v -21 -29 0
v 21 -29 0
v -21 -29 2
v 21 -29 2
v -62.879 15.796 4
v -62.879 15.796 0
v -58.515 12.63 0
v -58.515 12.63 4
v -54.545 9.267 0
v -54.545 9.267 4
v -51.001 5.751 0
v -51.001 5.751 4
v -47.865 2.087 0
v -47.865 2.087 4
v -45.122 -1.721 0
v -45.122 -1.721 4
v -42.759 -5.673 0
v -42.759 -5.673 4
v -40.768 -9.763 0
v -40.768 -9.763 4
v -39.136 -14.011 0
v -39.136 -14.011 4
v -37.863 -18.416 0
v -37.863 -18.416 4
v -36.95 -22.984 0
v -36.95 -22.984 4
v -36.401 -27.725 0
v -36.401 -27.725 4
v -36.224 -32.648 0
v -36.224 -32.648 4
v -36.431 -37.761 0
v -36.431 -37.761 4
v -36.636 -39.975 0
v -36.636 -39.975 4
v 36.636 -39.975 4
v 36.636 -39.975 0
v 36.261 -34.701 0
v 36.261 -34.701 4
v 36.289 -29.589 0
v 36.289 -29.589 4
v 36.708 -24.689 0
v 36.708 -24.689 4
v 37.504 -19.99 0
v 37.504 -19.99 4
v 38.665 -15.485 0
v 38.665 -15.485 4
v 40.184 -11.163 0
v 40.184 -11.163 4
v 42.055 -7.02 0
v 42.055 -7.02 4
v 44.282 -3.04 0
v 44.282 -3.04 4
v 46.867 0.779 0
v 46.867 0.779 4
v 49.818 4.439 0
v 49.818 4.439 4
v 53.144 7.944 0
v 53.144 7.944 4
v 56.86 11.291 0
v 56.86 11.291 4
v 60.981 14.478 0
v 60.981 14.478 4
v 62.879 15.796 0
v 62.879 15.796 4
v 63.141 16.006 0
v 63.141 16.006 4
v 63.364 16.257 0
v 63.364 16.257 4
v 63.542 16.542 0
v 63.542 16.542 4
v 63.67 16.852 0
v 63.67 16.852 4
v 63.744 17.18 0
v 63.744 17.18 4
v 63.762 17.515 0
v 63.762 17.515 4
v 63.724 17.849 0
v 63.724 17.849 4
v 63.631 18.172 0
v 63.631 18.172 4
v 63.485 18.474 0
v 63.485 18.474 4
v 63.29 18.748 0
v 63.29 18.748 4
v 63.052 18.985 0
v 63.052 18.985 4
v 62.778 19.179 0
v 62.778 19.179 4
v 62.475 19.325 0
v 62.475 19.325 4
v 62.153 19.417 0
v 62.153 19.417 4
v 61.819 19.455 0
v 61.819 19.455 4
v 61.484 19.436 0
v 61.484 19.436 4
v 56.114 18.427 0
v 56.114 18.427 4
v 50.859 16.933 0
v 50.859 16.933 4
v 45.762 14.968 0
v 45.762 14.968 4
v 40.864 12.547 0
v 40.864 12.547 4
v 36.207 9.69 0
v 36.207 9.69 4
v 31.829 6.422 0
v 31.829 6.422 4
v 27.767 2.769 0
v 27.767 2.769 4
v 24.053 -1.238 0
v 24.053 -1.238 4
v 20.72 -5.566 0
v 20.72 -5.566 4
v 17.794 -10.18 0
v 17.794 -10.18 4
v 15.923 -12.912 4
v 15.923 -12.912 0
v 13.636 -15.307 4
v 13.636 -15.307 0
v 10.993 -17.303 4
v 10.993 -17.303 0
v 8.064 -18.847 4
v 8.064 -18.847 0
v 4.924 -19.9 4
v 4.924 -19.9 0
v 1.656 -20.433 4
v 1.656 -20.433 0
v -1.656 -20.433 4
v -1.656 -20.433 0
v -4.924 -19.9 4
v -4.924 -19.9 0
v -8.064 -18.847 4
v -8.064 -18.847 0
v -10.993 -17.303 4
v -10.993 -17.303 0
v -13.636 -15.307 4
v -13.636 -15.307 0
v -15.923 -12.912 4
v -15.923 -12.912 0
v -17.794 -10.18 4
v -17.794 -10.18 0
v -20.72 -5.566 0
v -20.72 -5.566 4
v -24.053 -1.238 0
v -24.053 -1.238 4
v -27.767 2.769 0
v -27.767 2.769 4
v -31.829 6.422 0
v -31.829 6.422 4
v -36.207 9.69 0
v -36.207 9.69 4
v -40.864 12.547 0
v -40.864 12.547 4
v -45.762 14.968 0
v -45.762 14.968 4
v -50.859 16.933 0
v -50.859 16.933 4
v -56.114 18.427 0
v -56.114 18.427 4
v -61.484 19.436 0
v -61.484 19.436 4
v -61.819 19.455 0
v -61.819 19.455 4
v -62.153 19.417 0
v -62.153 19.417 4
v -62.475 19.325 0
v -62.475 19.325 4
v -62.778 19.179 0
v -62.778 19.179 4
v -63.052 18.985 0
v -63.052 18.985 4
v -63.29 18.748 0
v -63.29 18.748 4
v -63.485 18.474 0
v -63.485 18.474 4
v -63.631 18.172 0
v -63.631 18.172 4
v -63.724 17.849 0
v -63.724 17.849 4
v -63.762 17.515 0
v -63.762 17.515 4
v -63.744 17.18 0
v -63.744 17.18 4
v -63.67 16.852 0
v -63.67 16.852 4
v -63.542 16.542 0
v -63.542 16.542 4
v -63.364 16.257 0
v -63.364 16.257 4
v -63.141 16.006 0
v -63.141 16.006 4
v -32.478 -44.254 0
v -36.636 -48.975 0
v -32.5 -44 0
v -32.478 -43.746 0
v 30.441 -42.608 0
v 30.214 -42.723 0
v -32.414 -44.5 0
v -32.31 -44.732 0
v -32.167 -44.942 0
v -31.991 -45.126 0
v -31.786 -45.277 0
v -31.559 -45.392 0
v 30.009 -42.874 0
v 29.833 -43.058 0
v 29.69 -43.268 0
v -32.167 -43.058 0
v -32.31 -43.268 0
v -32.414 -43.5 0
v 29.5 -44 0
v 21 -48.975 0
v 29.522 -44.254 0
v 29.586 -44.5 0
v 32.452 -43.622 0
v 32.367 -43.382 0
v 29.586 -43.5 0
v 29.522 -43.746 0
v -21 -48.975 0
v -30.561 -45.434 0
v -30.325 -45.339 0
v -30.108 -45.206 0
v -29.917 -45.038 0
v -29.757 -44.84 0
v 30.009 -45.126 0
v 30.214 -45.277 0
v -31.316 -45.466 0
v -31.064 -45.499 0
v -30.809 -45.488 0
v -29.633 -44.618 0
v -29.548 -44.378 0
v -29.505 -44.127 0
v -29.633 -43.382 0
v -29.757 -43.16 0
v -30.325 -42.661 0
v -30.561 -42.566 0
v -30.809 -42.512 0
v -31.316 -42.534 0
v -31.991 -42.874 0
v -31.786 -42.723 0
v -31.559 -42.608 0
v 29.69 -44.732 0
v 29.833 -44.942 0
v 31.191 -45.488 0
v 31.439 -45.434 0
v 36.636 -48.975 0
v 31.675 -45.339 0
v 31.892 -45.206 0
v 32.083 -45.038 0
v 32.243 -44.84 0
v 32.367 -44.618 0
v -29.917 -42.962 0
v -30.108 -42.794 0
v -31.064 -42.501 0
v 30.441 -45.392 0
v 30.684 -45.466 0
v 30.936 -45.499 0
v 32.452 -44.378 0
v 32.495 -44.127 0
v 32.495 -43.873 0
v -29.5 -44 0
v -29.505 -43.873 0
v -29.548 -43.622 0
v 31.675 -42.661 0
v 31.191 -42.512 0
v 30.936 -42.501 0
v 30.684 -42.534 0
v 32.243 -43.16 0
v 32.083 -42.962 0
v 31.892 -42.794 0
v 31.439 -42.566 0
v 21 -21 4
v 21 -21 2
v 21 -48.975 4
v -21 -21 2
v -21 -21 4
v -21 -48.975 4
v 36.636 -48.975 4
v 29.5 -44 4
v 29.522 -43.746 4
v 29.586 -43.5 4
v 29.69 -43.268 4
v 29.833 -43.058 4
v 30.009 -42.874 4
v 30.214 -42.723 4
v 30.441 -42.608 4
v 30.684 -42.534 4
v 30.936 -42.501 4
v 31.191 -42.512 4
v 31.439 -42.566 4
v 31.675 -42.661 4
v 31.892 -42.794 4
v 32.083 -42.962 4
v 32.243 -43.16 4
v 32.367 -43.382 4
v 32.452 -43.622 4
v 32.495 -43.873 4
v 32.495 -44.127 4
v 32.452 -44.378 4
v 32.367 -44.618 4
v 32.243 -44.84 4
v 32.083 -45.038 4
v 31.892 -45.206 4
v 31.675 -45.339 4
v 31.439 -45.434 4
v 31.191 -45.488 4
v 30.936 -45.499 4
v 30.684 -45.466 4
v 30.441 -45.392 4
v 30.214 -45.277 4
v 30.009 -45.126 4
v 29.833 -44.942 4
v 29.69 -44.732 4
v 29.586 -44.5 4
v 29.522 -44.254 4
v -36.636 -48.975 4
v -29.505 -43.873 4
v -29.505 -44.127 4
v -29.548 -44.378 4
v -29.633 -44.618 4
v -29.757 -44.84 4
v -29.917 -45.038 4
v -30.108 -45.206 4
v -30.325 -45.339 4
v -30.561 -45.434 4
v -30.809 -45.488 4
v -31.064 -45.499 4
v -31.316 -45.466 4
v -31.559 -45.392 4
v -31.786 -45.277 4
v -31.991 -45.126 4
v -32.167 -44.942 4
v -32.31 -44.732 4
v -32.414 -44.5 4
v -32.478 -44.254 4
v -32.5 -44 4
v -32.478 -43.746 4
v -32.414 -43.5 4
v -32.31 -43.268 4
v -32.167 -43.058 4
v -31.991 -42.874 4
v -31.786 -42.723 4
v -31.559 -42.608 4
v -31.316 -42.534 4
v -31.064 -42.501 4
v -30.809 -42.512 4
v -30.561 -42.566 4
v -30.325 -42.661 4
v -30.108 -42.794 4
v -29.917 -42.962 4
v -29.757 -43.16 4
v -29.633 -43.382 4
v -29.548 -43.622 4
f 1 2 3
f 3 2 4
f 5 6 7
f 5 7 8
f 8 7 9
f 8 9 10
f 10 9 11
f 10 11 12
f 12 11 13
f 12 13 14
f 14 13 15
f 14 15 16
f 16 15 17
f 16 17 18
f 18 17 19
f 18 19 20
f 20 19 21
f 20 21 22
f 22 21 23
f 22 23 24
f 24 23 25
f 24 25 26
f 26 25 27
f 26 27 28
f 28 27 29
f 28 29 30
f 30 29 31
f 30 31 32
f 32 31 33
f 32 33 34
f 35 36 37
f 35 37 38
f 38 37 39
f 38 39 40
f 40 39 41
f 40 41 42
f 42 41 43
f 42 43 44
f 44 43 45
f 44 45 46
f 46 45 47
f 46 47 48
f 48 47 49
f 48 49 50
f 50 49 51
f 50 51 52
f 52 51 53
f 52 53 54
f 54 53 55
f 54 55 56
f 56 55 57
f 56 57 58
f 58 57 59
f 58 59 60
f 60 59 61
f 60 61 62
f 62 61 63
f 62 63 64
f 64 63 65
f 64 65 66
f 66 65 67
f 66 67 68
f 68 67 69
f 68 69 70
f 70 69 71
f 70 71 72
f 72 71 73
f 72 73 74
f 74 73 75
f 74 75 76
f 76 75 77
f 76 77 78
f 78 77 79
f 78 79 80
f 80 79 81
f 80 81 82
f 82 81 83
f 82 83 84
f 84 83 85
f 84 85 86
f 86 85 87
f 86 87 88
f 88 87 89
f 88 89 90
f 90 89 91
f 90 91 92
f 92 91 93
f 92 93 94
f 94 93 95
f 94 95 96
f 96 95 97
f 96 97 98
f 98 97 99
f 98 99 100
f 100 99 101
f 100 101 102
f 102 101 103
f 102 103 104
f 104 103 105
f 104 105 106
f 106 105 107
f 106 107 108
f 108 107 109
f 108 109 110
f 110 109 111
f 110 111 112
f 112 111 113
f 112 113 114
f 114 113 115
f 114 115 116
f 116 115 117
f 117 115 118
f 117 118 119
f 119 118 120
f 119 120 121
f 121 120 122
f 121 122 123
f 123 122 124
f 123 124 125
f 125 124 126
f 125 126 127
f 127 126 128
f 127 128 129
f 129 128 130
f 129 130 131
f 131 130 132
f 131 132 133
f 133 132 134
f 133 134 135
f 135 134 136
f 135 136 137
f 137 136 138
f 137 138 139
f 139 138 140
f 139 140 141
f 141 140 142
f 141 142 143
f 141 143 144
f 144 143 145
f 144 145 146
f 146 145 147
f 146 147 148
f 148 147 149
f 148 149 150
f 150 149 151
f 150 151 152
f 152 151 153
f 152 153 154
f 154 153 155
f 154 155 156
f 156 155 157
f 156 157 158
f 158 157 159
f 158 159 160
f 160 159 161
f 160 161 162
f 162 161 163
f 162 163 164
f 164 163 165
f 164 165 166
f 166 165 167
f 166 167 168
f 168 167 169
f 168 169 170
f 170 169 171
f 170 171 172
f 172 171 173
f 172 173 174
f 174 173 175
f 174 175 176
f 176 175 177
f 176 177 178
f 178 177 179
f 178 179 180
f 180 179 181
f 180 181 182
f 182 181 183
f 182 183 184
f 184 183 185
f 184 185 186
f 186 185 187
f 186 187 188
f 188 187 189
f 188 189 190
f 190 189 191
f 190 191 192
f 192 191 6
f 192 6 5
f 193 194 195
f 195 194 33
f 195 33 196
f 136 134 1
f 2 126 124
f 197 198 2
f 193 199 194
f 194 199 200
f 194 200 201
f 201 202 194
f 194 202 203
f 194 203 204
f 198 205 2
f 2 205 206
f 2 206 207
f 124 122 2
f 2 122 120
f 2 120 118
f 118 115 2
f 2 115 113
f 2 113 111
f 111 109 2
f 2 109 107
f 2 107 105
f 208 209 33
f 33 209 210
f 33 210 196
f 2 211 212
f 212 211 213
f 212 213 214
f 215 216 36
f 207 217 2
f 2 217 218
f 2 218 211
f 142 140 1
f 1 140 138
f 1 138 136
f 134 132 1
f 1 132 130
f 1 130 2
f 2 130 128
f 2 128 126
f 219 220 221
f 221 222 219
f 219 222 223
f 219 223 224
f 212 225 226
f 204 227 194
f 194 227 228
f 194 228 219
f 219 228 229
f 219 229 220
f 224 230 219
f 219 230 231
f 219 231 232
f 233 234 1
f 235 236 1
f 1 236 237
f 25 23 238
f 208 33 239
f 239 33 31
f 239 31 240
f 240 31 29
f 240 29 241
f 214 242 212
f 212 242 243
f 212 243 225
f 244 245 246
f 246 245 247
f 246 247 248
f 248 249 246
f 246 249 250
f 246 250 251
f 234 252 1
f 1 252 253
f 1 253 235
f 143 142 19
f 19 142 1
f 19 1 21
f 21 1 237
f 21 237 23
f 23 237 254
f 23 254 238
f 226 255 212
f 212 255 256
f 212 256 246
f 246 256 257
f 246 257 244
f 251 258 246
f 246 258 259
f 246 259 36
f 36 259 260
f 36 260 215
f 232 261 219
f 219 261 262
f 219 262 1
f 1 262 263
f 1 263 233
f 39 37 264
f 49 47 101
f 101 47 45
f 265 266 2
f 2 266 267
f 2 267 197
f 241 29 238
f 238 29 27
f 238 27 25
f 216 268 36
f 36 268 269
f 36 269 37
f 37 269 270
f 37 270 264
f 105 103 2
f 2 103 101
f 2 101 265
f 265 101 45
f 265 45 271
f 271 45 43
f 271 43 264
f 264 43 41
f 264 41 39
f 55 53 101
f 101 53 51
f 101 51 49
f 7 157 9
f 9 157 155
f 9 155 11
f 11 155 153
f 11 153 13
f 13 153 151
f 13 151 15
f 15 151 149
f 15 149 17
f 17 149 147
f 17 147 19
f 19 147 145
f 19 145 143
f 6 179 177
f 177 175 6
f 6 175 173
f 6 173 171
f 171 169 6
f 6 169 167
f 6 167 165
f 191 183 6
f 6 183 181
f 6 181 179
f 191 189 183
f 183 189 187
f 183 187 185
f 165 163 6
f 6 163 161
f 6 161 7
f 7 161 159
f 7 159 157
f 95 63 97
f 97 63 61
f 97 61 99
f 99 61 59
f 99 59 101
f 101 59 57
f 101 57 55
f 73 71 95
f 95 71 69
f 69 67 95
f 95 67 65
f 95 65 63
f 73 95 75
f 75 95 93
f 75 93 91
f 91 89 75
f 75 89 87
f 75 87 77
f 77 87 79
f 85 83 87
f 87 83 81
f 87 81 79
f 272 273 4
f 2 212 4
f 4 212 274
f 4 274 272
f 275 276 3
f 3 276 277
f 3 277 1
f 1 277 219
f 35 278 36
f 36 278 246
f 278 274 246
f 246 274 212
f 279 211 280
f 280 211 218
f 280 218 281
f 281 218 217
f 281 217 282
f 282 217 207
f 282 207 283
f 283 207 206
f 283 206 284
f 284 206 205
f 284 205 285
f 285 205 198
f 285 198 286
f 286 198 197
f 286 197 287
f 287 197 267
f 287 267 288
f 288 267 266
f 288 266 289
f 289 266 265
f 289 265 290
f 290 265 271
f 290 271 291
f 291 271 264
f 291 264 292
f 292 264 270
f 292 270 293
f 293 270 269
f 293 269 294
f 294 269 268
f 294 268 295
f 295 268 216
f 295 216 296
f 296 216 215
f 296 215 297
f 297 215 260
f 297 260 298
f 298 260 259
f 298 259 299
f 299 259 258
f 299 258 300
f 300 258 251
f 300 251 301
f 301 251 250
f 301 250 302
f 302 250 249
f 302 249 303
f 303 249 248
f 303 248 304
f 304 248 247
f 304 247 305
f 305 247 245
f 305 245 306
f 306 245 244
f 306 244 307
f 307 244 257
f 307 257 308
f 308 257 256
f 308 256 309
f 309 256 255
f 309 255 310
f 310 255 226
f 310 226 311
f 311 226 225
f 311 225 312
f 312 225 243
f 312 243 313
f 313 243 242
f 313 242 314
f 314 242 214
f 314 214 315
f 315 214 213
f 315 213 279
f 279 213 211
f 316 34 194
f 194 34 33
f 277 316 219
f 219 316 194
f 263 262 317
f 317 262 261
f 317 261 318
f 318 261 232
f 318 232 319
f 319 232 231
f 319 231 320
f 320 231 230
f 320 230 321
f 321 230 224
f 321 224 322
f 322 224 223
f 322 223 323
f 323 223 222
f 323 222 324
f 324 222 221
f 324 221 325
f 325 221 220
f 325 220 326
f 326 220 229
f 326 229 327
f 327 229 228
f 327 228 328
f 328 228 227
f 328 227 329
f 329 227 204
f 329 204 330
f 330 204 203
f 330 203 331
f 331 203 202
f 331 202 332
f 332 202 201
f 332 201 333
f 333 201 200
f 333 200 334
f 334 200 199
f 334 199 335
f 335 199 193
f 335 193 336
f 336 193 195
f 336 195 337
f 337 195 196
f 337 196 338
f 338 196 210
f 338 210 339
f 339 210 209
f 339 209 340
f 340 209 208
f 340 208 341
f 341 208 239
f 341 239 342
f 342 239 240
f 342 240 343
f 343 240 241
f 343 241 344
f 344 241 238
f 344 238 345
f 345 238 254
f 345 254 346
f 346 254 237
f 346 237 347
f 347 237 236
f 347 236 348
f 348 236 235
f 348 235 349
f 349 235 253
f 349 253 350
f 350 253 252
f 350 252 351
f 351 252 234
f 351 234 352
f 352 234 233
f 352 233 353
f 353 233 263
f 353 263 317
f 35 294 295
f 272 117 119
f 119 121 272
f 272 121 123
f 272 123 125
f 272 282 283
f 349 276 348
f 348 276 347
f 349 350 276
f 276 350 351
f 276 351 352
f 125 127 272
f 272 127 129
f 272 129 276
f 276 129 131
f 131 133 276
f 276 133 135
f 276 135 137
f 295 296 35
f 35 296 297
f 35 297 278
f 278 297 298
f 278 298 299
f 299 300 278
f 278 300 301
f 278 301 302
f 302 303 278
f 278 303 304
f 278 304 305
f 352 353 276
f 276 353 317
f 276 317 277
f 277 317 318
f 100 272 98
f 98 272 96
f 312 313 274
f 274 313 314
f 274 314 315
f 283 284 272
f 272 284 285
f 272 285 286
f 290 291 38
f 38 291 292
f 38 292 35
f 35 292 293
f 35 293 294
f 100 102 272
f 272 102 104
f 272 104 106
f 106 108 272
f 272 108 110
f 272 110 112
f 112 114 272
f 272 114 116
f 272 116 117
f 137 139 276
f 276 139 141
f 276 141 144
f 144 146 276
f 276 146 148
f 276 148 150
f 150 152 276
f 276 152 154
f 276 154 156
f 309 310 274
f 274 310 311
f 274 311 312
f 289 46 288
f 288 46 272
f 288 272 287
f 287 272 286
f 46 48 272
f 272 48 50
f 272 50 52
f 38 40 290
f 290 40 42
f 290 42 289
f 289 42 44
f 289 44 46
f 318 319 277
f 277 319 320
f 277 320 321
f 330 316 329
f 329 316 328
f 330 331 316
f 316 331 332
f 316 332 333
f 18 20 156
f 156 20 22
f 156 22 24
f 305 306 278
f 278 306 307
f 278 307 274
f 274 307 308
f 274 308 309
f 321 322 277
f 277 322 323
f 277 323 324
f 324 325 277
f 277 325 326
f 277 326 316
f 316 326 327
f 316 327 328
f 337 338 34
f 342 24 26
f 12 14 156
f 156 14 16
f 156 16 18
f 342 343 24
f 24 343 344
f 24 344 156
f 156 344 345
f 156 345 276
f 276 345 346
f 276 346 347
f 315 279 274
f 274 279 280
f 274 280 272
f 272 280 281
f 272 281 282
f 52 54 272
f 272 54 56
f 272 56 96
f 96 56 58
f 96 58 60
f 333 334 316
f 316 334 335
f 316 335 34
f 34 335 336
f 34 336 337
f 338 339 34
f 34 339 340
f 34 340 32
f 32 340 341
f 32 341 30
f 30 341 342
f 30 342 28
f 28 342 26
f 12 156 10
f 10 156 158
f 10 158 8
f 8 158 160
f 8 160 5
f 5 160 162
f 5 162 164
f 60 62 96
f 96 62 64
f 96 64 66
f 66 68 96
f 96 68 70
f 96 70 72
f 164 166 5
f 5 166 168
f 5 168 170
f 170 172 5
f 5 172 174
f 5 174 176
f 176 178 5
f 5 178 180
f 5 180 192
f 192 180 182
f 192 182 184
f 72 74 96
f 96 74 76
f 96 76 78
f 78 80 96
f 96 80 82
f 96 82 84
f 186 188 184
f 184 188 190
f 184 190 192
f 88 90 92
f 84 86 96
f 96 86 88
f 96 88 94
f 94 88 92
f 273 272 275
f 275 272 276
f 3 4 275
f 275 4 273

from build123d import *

# Parameters (mm, degrees)
EXTRUDE_1_DEPTH     = 3
SKETCH_2_W          = 42
SKETCH_2_H          = 10.974531836
CUT_EXTRUDE_1_DEPTH = 3
SKETCH_3_W          = 15.635920588
SKETCH_3_H          = 9
SKETCH_3_R          = 1.5
EXTRUDE_2_DEPTH     = 3
EXTRUDE_7_DEPTH     = 1
SKETCH_5_W          = 42
SKETCH_5_H          = 8
CUT_EXTRUDE_2_DEPTH = 1
SKETCH_6_R          = 1.5
CUT_EXTRUDE_3_DEPTH = 1


with BuildPart() as part:
    # 草图1 → 凸台-拉伸1 (new body)
    with BuildSketch(Plane.XY):
        with BuildLine():
            Line((36.635920588, -39.974531836), (-36.635920588, -39.974531836))
            add(Edge.make_bspline(
                [(-36.635920588, -39.974531836), (-34.121545097, -16.704406605), (-43.139592985, 2.527664637), (-62.878950173, 15.795774826)],
                knots=[0, 0, 0, 0, 0.89990839, 0.89990839, 0.89990839, 0.89990839], degree=3))
            ThreePointArc((-62.878950173, 15.795774826), (-63.630739893, 18.171500647), (-61.483579663, 19.436002094))
            ThreePointArc((-61.483579663, 19.436002094), (-36.207222823, 9.690254792), (-17.793837687, -10.179849722))
            ThreePointArc((-17.793837687, -10.179849722), (0, -20.5), (17.793837687, -10.179849722))
            ThreePointArc((17.793837687, -10.179849722), (36.207222823, 9.690254792), (61.483579663, 19.436002094))
            ThreePointArc((61.483579663, 19.436002094), (63.630739893, 18.171500647), (62.878950173, 15.795774826))
            add(Edge.make_bspline(
                [(36.635920588, -39.974531836), (34.121545097, -16.704406605), (43.139592985, 2.527664637), (62.878950173, 15.795774826)],
                knots=[0, 0, 0, 0, 0.89990839, 0.89990839, 0.89990839, 0.89990839], degree=3))
        make_face()
    extrude(amount=EXTRUDE_1_DEPTH)

    # 草图2 → 切除-拉伸1 (cut)
    with BuildSketch(Plane(origin=(0, 0, 0), x_dir=(-1, 0, 0), z_dir=(0, 0, -1))):
        with Locations((0, -34.487265918)):
            Rectangle(SKETCH_2_W, SKETCH_2_H)
    extrude(amount=-CUT_EXTRUDE_1_DEPTH, mode=Mode.SUBTRACT)

    # 草图3 → 凸台-拉伸2 (add)
    # profile 1 of 2: a face of its own
    with BuildSketch(Plane(origin=(0, 0, 0), x_dir=(-1, 0, 0), z_dir=(0, 0, -1))):
        with Locations((-28.817960294, -44.474531836)):
            Rectangle(SKETCH_3_W, SKETCH_3_H)
        with Locations((-31, -44)):
            Circle(SKETCH_3_R, mode=Mode.SUBTRACT)
    # profile 2 of 2: a face of its own
    with BuildSketch(Plane(origin=(0, 0, 0), x_dir=(-1, 0, 0), z_dir=(0, 0, -1))):
        with Locations((28.817960294, -44.474531836)):
            Rectangle(SKETCH_3_W, SKETCH_3_H)
        with Locations(Location((31, -44, 0), (0, 0, 180))):
            Circle(SKETCH_3_R, mode=Mode.SUBTRACT)
    extrude(amount=-EXTRUDE_2_DEPTH)

    # 草图4 → 凸台-拉伸7 (add)
    with BuildSketch(Plane.XY.offset(3)):
        with BuildLine():
            Line((-21, -29), (-21, -21))
            Line((-21, -21), (21, -21))
            Line((21, -21), (21, -29))
            Line((21, -29), (21, -48.974531836))
            Line((21, -48.974531836), (36.635920588, -48.974531836))
            Line((36.635920588, -48.974531836), (36.635920588, -39.974531836))
            add(Edge.make_bspline(
                [(36.635920588, -39.974531836), (34.121545097, -16.704406605), (43.139592985, 2.527664637), (62.878950173, 15.795774826)],
                knots=[0, 0, 0, 0, 0.89990839, 0.89990839, 0.89990839, 0.89990839], degree=3))
            ThreePointArc((62.878950173, 15.795774826), (63.630739893, 18.171500647), (61.483579663, 19.436002094))
            ThreePointArc((61.483579663, 19.436002094), (36.207222823, 9.690254792), (17.793837687, -10.179849722))
            ThreePointArc((17.793837687, -10.179849722), (0, -20.5), (-17.793837687, -10.179849722))
            ThreePointArc((-17.793837687, -10.179849722), (-36.207222823, 9.690254792), (-61.483579663, 19.436002094))
            ThreePointArc((-61.483579663, 19.436002094), (-63.630739893, 18.171500647), (-62.878950173, 15.795774826))
            add(Edge.make_bspline(
                [(-62.878950173, 15.795774826), (-43.139592985, 2.527664637), (-34.121545097, -16.704406605), (-36.635920588, -39.974531836)],
                knots=[0, 0, 0, 0, 0.89990839, 0.89990839, 0.89990839, 0.89990839], degree=3))
            Line((-36.635920588, -39.974531836), (-36.635920588, -48.974531836))
            Line((-36.635920588, -48.974531836), (-21, -48.974531836))
            Line((-21, -48.974531836), (-21, -29))
        make_face()
    extrude(amount=EXTRUDE_7_DEPTH)

    # 草图5 → 切除-拉伸2 (cut)
    with BuildSketch(Plane.XY.offset(3)):
        with Locations((0, -25)):
            Rectangle(SKETCH_5_W, SKETCH_5_H)
    extrude(amount=-CUT_EXTRUDE_2_DEPTH, mode=Mode.SUBTRACT)

    # 草图6 → 切除-拉伸3 (cut)
    with BuildSketch(Plane(origin=(0, 0, 3), x_dir=(-1, 0, 0), z_dir=(0, 0, -1))):
        with Locations((-31, -44)):
            Circle(SKETCH_6_R)
        with Locations((31, -44)):
            Circle(SKETCH_6_R)
    extrude(amount=-CUT_EXTRUDE_3_DEPTH, mode=Mode.SUBTRACT)


solid = part.part
